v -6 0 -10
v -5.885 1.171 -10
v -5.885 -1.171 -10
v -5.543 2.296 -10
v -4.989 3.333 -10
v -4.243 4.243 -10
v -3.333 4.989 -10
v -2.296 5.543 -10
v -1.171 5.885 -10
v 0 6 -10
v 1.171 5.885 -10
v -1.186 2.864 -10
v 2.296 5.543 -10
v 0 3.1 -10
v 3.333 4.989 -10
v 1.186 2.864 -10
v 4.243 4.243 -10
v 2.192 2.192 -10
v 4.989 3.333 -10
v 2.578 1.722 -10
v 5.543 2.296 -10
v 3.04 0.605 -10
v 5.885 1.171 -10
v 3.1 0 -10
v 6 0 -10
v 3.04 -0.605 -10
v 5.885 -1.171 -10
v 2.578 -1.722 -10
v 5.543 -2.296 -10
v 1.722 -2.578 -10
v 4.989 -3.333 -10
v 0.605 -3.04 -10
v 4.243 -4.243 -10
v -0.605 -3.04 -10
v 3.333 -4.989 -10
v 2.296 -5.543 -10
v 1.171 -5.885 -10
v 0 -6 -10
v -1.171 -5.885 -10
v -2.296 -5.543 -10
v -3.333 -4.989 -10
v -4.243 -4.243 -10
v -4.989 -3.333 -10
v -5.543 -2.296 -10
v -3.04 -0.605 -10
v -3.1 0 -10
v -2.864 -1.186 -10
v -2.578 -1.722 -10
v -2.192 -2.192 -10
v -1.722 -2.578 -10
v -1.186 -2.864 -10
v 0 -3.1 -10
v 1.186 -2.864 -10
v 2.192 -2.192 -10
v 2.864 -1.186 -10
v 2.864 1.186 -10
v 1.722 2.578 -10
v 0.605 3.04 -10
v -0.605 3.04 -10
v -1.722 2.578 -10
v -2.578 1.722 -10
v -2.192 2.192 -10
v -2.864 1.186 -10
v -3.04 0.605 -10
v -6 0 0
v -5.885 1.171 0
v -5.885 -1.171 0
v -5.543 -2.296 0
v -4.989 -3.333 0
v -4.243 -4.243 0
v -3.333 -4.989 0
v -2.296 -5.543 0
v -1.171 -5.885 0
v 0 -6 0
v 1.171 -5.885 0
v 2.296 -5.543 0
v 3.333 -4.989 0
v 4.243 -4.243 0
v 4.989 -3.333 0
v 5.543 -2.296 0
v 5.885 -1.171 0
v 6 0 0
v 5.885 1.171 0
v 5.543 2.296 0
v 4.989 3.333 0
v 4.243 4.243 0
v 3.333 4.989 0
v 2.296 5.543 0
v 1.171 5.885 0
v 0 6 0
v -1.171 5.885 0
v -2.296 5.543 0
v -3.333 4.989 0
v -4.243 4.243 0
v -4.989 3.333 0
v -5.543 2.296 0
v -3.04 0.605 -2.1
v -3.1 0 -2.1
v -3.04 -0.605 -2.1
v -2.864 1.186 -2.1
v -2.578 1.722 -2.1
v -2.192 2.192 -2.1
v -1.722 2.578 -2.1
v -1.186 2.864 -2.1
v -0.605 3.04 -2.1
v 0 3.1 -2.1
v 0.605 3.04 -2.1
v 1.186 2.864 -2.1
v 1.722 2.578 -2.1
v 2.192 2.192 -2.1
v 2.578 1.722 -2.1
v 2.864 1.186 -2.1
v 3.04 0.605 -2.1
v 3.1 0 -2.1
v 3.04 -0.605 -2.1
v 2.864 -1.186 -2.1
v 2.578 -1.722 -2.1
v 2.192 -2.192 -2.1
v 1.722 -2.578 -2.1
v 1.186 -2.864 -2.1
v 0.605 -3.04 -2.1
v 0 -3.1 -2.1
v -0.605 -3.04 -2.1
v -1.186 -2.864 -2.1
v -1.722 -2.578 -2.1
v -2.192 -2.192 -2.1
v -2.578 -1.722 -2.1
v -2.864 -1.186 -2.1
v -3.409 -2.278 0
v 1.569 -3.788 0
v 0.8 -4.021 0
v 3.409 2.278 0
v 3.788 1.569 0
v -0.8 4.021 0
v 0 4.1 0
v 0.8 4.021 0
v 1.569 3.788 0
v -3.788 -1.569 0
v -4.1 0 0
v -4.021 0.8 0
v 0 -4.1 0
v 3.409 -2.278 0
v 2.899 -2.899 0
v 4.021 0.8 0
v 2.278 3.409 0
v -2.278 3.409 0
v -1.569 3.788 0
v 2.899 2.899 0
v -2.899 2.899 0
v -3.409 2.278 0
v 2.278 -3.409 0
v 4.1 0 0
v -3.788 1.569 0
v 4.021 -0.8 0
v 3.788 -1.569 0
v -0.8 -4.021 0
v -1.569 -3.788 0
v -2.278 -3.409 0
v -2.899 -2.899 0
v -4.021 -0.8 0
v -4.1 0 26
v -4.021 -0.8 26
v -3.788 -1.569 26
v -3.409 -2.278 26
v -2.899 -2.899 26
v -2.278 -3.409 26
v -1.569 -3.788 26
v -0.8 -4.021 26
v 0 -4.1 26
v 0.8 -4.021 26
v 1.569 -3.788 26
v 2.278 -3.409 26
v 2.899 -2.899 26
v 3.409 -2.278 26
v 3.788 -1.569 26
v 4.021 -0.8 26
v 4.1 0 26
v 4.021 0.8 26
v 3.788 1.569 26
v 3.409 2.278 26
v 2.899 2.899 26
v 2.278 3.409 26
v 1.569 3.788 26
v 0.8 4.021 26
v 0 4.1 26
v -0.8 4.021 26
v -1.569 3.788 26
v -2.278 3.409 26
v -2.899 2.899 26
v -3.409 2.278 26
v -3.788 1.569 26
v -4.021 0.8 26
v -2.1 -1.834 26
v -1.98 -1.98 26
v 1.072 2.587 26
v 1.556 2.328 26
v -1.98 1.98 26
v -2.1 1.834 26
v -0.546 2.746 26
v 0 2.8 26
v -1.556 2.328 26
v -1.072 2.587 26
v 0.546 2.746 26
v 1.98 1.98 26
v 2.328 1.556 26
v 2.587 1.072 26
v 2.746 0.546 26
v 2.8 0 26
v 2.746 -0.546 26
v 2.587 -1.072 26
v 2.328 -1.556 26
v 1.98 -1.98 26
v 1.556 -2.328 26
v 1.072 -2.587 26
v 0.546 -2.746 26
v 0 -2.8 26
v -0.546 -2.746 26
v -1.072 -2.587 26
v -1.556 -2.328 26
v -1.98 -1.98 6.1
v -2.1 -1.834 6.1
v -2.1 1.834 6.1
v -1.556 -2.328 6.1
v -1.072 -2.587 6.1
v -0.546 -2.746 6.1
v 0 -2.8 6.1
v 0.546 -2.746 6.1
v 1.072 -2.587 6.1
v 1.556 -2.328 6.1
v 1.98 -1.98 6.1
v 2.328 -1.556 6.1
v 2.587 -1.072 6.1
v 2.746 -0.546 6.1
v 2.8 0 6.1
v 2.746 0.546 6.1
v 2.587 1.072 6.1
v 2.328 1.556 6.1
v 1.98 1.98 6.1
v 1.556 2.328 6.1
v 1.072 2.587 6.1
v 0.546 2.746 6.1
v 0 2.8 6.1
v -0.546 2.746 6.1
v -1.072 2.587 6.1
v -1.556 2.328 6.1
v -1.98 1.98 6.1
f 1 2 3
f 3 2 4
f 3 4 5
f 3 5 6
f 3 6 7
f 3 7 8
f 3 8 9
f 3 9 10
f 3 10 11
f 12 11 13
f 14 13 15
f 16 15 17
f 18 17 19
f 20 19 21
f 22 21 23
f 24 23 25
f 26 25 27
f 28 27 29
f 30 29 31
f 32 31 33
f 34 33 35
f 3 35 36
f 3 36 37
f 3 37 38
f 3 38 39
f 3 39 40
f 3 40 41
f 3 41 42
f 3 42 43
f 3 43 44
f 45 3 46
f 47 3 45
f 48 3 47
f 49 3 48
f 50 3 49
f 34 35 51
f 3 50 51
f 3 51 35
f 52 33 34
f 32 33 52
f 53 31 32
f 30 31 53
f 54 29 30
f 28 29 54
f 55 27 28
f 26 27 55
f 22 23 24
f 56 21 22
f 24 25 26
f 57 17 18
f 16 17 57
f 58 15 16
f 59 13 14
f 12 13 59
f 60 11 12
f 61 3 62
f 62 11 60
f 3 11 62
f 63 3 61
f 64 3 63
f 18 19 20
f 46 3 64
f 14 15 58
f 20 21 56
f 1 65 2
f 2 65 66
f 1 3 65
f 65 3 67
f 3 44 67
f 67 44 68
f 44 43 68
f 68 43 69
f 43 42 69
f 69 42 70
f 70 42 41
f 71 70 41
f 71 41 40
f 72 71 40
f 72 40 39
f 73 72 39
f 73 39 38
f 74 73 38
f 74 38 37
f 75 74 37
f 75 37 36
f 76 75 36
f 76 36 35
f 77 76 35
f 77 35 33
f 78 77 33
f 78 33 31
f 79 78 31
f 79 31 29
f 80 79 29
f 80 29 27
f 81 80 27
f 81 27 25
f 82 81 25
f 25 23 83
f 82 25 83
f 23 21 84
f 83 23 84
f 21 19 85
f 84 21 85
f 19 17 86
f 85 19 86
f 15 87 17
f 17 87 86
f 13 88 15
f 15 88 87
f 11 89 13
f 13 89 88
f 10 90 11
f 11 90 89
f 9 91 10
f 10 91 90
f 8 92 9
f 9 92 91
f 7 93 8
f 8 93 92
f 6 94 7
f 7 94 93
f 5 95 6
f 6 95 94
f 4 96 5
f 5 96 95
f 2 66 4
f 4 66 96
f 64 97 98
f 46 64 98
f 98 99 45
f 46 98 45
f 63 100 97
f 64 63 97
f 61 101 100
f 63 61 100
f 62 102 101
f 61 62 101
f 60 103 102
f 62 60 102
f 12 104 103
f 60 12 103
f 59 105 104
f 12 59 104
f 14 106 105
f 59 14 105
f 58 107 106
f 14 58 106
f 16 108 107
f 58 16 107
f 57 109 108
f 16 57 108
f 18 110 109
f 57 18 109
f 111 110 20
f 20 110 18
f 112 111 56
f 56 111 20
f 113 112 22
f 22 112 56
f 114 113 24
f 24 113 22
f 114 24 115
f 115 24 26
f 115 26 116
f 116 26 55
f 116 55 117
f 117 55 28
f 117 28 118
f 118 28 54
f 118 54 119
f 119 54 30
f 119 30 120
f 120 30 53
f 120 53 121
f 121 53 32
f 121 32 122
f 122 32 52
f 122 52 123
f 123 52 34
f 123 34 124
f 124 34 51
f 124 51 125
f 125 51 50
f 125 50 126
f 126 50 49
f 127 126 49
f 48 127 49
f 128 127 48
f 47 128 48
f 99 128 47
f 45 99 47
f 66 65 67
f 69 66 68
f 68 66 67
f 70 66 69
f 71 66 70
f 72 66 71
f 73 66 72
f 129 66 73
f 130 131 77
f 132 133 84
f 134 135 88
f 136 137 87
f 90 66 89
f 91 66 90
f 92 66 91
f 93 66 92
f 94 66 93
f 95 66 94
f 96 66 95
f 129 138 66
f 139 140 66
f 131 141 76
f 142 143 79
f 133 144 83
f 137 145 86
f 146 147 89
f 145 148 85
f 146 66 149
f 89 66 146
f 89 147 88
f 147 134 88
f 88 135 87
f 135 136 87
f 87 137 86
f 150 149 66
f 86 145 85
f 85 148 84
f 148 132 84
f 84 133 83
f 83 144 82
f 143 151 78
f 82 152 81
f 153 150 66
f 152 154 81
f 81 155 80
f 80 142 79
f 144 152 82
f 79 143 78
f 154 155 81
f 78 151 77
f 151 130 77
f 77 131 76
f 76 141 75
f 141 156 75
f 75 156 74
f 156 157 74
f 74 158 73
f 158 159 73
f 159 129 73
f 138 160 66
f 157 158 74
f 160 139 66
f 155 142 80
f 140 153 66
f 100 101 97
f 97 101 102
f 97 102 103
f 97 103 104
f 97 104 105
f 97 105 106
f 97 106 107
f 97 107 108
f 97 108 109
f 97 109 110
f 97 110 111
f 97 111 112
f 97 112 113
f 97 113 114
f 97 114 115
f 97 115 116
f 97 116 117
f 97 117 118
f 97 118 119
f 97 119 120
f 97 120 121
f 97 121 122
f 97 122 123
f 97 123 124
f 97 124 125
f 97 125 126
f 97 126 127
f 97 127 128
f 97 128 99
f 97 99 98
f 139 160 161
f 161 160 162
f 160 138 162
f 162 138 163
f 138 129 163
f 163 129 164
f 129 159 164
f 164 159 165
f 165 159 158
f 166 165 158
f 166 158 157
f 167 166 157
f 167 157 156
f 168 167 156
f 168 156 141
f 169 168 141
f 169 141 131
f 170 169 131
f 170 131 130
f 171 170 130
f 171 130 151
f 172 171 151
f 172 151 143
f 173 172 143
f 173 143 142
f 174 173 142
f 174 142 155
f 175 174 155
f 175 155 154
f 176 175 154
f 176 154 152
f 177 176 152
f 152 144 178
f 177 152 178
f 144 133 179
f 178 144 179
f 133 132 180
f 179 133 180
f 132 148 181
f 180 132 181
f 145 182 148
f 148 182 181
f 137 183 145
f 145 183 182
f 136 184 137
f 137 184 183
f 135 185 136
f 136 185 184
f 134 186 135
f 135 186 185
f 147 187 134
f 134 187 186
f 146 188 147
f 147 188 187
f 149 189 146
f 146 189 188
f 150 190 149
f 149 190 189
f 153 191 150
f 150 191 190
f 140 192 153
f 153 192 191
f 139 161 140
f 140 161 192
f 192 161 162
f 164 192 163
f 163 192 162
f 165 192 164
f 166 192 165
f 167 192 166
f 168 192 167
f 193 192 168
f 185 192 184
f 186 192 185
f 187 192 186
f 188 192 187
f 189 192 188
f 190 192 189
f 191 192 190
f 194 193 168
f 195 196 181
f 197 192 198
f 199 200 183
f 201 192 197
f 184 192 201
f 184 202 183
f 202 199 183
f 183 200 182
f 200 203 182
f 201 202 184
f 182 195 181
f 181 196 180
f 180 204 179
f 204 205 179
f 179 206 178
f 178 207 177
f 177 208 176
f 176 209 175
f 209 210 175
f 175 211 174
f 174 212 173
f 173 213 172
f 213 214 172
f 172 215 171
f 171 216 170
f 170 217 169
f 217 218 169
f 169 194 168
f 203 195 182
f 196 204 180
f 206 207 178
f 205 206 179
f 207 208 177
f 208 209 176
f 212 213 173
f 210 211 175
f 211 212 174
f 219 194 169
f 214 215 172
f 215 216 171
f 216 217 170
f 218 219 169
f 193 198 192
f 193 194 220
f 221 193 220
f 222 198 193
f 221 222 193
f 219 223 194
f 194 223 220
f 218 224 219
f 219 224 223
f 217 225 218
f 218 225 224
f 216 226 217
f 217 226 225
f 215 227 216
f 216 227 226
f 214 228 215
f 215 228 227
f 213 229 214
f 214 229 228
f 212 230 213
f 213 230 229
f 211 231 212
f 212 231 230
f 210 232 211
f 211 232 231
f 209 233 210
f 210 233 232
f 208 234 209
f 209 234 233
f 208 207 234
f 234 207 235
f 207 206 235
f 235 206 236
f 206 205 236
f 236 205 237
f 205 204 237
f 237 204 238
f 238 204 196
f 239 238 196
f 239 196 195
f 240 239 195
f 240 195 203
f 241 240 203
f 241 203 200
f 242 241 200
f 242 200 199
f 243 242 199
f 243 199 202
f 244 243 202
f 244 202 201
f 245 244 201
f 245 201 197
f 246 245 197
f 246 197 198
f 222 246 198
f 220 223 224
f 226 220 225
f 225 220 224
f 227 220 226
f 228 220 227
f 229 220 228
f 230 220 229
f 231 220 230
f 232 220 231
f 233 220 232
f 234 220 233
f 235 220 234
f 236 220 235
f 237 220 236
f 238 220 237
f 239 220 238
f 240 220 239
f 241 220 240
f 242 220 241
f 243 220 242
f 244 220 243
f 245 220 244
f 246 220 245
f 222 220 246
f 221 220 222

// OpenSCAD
module motorcoupling()
{
	difference()
	{
		union()
		{
			translate([0,0,-5]) cylinder(r=12/2,h=10,center=true,$fn=32);
			translate([0,0,12]) cylinder(r=8.2/2,h=28,center=true,$fn=32);
		}
		translate([0,0,-8 - 0.1]) cylinder(r=6.2/2,h=12,center=true,$fn=32);
		intersection()
		{
			translate([0,0,20 + 0.1]) cylinder(r=5.6/2,h=28,center=true,$fn=32);
			translate([2.9,0,20 + 0.1]) cube([10,10,28],center=true);
		}
	}
}

motorcoupling();
